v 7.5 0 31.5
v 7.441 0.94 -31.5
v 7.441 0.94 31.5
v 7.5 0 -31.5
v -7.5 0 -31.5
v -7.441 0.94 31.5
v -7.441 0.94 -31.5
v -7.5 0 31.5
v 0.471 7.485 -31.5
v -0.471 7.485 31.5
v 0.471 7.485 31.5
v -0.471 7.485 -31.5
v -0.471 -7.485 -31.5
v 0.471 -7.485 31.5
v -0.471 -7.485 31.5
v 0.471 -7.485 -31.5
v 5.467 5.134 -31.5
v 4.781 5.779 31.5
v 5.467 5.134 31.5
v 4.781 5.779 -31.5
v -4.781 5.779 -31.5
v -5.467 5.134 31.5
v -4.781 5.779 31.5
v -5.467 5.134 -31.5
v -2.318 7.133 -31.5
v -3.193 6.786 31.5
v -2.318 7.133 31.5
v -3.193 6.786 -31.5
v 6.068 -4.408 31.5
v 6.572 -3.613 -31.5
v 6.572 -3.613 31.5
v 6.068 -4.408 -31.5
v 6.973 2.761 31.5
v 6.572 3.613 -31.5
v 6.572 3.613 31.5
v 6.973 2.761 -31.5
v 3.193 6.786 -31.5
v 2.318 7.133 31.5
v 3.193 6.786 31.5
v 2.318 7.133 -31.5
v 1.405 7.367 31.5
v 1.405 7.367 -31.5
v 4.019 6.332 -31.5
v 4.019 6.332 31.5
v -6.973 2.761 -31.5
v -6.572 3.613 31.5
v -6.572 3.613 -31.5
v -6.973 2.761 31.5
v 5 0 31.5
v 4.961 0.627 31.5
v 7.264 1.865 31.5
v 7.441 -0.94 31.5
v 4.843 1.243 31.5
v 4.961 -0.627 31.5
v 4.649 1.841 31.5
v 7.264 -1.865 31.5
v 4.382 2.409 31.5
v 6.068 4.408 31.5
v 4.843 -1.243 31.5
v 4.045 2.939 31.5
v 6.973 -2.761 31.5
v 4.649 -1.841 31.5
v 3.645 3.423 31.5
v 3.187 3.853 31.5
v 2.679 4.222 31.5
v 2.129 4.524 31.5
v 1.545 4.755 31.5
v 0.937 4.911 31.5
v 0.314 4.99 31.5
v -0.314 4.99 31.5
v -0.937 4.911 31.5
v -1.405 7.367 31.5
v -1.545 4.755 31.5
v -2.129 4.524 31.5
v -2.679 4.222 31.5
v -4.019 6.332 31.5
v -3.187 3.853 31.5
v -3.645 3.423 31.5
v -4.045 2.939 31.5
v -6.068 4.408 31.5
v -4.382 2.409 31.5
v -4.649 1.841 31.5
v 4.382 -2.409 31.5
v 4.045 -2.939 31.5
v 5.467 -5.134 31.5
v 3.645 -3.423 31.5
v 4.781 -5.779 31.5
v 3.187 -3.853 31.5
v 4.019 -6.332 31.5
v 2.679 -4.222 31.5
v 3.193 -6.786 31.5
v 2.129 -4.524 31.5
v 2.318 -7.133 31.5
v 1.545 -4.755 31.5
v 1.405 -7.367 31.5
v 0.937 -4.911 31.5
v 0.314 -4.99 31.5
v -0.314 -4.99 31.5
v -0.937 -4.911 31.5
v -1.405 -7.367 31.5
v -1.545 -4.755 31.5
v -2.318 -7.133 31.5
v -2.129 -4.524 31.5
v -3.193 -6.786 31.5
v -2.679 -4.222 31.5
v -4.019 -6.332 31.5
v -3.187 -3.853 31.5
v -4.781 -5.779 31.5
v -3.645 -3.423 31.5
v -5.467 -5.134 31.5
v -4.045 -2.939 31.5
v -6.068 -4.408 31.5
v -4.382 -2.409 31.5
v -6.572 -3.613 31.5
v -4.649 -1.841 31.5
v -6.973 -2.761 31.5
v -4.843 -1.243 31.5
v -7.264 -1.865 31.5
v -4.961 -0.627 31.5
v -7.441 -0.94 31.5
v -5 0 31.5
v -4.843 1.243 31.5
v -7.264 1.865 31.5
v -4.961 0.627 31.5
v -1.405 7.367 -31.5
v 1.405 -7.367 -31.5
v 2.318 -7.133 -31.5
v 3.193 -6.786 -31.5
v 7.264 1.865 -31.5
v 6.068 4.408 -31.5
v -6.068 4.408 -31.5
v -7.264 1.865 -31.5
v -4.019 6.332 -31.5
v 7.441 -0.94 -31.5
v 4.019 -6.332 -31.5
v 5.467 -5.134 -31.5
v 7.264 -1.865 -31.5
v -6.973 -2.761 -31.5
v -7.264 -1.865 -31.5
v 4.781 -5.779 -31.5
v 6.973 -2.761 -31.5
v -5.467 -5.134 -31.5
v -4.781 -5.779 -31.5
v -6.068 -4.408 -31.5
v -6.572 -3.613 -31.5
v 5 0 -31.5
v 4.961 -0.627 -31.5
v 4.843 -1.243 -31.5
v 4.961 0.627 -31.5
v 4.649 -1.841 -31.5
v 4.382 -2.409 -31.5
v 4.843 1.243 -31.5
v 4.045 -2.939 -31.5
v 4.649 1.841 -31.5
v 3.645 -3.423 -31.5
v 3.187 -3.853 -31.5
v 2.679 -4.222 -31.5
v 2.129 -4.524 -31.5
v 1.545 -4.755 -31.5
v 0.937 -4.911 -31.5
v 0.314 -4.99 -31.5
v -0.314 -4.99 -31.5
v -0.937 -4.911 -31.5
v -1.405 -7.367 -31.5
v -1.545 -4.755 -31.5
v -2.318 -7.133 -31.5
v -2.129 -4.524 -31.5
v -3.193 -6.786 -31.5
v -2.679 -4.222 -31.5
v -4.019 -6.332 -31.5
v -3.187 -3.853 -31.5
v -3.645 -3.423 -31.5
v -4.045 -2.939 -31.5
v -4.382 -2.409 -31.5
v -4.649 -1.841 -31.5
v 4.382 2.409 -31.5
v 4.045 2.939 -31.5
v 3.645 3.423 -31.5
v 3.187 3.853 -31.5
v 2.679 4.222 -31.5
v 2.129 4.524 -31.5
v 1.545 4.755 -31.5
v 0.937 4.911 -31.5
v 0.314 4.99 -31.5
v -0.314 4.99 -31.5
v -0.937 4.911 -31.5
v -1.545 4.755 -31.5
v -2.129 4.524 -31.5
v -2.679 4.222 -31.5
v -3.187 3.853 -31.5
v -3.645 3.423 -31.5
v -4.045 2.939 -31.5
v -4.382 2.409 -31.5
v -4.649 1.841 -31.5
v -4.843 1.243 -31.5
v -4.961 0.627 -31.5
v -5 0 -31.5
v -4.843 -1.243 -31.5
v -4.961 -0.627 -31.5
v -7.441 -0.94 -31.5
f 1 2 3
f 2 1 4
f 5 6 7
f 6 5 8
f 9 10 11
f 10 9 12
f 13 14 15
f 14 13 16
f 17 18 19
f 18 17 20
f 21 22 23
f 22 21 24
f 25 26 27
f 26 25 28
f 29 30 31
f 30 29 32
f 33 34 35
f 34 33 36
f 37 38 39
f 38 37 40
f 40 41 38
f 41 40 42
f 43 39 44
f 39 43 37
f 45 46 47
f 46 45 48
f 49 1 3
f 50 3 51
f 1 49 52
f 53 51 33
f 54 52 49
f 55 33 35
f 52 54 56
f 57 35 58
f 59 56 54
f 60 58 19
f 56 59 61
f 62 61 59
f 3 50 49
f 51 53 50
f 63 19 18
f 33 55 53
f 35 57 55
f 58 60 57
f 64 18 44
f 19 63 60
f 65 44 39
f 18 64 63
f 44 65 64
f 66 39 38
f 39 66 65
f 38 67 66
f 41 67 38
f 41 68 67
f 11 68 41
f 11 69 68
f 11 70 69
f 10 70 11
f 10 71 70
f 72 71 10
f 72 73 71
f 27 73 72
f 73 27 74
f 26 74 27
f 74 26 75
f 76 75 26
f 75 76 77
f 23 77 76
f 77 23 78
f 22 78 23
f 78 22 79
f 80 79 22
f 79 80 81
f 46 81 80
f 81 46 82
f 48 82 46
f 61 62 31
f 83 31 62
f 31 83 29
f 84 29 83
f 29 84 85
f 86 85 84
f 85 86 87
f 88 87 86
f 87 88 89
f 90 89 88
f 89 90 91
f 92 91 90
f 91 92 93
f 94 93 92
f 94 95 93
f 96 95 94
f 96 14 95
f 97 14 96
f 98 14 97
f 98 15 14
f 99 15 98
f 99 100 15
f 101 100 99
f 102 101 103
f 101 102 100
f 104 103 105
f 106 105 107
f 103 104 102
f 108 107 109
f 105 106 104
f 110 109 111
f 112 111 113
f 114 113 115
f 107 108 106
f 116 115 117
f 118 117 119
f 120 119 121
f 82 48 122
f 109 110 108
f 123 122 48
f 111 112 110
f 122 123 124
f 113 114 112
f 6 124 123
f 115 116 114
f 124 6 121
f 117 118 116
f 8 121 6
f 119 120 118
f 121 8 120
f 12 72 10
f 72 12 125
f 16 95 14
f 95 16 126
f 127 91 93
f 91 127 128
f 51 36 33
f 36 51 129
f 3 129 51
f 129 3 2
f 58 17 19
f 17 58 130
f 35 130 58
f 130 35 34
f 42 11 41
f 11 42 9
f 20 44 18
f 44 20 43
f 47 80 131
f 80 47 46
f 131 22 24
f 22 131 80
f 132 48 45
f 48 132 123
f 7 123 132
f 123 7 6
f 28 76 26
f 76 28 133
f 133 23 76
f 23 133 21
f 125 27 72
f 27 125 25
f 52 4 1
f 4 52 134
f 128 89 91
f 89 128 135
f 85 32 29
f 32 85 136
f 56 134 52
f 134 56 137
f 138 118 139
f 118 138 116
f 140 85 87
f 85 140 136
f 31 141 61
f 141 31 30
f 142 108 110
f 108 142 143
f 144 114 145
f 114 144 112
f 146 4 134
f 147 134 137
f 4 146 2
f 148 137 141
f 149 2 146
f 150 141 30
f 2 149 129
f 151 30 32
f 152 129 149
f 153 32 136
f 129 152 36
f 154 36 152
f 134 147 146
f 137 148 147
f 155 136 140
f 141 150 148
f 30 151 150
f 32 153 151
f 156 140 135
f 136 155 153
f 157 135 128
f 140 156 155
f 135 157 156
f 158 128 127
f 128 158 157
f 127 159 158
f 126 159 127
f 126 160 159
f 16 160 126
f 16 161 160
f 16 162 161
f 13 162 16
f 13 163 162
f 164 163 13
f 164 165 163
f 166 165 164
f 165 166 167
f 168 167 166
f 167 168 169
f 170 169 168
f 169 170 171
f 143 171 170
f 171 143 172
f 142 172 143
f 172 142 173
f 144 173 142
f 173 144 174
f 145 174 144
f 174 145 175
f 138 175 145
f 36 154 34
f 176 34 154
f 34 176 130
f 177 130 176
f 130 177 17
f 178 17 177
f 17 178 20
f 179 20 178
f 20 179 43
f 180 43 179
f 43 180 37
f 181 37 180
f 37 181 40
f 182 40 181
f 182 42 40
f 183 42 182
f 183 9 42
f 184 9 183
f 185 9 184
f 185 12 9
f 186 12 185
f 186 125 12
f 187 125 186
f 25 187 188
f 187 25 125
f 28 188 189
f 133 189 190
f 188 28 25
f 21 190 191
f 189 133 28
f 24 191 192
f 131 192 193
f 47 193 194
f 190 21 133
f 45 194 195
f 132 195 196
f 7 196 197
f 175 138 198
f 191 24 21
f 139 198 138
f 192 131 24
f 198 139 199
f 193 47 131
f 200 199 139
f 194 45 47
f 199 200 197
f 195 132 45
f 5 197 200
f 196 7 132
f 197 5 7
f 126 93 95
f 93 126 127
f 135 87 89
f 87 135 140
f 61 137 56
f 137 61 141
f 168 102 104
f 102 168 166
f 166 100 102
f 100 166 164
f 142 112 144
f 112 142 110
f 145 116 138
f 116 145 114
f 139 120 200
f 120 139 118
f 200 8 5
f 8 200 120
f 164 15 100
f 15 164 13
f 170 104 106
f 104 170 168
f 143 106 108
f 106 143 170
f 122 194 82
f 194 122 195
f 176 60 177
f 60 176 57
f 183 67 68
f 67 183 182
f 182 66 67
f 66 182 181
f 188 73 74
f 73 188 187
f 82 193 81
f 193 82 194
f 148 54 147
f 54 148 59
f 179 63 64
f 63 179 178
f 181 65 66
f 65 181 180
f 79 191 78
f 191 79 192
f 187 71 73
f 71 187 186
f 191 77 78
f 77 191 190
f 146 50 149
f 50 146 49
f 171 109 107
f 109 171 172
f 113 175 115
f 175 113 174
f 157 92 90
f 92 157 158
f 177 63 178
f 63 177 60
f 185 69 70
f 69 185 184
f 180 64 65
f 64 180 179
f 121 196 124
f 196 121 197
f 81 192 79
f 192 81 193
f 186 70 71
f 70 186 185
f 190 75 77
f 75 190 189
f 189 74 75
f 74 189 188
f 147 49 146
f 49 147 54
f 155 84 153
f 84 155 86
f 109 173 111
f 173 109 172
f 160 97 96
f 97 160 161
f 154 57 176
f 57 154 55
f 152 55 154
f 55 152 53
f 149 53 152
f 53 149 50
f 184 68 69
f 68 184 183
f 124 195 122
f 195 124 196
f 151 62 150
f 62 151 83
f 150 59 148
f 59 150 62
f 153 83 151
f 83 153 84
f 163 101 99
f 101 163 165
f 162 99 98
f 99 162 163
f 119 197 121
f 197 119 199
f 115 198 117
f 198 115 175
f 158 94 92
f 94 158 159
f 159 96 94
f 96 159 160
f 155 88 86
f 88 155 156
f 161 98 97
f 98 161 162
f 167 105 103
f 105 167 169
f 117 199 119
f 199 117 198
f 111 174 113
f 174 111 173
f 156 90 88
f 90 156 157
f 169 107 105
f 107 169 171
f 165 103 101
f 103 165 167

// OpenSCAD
$fn = 50;


difference() {
	union() {
		translate(v = [0, 0, -31.5000000000]) {
			cylinder(h = 63, r = 7.5000000000);
		}
	}
	union() {
		translate(v = [0, 0, -100.0000000000]) {
			cylinder(h = 200, r = 5);
		}
	}
}
